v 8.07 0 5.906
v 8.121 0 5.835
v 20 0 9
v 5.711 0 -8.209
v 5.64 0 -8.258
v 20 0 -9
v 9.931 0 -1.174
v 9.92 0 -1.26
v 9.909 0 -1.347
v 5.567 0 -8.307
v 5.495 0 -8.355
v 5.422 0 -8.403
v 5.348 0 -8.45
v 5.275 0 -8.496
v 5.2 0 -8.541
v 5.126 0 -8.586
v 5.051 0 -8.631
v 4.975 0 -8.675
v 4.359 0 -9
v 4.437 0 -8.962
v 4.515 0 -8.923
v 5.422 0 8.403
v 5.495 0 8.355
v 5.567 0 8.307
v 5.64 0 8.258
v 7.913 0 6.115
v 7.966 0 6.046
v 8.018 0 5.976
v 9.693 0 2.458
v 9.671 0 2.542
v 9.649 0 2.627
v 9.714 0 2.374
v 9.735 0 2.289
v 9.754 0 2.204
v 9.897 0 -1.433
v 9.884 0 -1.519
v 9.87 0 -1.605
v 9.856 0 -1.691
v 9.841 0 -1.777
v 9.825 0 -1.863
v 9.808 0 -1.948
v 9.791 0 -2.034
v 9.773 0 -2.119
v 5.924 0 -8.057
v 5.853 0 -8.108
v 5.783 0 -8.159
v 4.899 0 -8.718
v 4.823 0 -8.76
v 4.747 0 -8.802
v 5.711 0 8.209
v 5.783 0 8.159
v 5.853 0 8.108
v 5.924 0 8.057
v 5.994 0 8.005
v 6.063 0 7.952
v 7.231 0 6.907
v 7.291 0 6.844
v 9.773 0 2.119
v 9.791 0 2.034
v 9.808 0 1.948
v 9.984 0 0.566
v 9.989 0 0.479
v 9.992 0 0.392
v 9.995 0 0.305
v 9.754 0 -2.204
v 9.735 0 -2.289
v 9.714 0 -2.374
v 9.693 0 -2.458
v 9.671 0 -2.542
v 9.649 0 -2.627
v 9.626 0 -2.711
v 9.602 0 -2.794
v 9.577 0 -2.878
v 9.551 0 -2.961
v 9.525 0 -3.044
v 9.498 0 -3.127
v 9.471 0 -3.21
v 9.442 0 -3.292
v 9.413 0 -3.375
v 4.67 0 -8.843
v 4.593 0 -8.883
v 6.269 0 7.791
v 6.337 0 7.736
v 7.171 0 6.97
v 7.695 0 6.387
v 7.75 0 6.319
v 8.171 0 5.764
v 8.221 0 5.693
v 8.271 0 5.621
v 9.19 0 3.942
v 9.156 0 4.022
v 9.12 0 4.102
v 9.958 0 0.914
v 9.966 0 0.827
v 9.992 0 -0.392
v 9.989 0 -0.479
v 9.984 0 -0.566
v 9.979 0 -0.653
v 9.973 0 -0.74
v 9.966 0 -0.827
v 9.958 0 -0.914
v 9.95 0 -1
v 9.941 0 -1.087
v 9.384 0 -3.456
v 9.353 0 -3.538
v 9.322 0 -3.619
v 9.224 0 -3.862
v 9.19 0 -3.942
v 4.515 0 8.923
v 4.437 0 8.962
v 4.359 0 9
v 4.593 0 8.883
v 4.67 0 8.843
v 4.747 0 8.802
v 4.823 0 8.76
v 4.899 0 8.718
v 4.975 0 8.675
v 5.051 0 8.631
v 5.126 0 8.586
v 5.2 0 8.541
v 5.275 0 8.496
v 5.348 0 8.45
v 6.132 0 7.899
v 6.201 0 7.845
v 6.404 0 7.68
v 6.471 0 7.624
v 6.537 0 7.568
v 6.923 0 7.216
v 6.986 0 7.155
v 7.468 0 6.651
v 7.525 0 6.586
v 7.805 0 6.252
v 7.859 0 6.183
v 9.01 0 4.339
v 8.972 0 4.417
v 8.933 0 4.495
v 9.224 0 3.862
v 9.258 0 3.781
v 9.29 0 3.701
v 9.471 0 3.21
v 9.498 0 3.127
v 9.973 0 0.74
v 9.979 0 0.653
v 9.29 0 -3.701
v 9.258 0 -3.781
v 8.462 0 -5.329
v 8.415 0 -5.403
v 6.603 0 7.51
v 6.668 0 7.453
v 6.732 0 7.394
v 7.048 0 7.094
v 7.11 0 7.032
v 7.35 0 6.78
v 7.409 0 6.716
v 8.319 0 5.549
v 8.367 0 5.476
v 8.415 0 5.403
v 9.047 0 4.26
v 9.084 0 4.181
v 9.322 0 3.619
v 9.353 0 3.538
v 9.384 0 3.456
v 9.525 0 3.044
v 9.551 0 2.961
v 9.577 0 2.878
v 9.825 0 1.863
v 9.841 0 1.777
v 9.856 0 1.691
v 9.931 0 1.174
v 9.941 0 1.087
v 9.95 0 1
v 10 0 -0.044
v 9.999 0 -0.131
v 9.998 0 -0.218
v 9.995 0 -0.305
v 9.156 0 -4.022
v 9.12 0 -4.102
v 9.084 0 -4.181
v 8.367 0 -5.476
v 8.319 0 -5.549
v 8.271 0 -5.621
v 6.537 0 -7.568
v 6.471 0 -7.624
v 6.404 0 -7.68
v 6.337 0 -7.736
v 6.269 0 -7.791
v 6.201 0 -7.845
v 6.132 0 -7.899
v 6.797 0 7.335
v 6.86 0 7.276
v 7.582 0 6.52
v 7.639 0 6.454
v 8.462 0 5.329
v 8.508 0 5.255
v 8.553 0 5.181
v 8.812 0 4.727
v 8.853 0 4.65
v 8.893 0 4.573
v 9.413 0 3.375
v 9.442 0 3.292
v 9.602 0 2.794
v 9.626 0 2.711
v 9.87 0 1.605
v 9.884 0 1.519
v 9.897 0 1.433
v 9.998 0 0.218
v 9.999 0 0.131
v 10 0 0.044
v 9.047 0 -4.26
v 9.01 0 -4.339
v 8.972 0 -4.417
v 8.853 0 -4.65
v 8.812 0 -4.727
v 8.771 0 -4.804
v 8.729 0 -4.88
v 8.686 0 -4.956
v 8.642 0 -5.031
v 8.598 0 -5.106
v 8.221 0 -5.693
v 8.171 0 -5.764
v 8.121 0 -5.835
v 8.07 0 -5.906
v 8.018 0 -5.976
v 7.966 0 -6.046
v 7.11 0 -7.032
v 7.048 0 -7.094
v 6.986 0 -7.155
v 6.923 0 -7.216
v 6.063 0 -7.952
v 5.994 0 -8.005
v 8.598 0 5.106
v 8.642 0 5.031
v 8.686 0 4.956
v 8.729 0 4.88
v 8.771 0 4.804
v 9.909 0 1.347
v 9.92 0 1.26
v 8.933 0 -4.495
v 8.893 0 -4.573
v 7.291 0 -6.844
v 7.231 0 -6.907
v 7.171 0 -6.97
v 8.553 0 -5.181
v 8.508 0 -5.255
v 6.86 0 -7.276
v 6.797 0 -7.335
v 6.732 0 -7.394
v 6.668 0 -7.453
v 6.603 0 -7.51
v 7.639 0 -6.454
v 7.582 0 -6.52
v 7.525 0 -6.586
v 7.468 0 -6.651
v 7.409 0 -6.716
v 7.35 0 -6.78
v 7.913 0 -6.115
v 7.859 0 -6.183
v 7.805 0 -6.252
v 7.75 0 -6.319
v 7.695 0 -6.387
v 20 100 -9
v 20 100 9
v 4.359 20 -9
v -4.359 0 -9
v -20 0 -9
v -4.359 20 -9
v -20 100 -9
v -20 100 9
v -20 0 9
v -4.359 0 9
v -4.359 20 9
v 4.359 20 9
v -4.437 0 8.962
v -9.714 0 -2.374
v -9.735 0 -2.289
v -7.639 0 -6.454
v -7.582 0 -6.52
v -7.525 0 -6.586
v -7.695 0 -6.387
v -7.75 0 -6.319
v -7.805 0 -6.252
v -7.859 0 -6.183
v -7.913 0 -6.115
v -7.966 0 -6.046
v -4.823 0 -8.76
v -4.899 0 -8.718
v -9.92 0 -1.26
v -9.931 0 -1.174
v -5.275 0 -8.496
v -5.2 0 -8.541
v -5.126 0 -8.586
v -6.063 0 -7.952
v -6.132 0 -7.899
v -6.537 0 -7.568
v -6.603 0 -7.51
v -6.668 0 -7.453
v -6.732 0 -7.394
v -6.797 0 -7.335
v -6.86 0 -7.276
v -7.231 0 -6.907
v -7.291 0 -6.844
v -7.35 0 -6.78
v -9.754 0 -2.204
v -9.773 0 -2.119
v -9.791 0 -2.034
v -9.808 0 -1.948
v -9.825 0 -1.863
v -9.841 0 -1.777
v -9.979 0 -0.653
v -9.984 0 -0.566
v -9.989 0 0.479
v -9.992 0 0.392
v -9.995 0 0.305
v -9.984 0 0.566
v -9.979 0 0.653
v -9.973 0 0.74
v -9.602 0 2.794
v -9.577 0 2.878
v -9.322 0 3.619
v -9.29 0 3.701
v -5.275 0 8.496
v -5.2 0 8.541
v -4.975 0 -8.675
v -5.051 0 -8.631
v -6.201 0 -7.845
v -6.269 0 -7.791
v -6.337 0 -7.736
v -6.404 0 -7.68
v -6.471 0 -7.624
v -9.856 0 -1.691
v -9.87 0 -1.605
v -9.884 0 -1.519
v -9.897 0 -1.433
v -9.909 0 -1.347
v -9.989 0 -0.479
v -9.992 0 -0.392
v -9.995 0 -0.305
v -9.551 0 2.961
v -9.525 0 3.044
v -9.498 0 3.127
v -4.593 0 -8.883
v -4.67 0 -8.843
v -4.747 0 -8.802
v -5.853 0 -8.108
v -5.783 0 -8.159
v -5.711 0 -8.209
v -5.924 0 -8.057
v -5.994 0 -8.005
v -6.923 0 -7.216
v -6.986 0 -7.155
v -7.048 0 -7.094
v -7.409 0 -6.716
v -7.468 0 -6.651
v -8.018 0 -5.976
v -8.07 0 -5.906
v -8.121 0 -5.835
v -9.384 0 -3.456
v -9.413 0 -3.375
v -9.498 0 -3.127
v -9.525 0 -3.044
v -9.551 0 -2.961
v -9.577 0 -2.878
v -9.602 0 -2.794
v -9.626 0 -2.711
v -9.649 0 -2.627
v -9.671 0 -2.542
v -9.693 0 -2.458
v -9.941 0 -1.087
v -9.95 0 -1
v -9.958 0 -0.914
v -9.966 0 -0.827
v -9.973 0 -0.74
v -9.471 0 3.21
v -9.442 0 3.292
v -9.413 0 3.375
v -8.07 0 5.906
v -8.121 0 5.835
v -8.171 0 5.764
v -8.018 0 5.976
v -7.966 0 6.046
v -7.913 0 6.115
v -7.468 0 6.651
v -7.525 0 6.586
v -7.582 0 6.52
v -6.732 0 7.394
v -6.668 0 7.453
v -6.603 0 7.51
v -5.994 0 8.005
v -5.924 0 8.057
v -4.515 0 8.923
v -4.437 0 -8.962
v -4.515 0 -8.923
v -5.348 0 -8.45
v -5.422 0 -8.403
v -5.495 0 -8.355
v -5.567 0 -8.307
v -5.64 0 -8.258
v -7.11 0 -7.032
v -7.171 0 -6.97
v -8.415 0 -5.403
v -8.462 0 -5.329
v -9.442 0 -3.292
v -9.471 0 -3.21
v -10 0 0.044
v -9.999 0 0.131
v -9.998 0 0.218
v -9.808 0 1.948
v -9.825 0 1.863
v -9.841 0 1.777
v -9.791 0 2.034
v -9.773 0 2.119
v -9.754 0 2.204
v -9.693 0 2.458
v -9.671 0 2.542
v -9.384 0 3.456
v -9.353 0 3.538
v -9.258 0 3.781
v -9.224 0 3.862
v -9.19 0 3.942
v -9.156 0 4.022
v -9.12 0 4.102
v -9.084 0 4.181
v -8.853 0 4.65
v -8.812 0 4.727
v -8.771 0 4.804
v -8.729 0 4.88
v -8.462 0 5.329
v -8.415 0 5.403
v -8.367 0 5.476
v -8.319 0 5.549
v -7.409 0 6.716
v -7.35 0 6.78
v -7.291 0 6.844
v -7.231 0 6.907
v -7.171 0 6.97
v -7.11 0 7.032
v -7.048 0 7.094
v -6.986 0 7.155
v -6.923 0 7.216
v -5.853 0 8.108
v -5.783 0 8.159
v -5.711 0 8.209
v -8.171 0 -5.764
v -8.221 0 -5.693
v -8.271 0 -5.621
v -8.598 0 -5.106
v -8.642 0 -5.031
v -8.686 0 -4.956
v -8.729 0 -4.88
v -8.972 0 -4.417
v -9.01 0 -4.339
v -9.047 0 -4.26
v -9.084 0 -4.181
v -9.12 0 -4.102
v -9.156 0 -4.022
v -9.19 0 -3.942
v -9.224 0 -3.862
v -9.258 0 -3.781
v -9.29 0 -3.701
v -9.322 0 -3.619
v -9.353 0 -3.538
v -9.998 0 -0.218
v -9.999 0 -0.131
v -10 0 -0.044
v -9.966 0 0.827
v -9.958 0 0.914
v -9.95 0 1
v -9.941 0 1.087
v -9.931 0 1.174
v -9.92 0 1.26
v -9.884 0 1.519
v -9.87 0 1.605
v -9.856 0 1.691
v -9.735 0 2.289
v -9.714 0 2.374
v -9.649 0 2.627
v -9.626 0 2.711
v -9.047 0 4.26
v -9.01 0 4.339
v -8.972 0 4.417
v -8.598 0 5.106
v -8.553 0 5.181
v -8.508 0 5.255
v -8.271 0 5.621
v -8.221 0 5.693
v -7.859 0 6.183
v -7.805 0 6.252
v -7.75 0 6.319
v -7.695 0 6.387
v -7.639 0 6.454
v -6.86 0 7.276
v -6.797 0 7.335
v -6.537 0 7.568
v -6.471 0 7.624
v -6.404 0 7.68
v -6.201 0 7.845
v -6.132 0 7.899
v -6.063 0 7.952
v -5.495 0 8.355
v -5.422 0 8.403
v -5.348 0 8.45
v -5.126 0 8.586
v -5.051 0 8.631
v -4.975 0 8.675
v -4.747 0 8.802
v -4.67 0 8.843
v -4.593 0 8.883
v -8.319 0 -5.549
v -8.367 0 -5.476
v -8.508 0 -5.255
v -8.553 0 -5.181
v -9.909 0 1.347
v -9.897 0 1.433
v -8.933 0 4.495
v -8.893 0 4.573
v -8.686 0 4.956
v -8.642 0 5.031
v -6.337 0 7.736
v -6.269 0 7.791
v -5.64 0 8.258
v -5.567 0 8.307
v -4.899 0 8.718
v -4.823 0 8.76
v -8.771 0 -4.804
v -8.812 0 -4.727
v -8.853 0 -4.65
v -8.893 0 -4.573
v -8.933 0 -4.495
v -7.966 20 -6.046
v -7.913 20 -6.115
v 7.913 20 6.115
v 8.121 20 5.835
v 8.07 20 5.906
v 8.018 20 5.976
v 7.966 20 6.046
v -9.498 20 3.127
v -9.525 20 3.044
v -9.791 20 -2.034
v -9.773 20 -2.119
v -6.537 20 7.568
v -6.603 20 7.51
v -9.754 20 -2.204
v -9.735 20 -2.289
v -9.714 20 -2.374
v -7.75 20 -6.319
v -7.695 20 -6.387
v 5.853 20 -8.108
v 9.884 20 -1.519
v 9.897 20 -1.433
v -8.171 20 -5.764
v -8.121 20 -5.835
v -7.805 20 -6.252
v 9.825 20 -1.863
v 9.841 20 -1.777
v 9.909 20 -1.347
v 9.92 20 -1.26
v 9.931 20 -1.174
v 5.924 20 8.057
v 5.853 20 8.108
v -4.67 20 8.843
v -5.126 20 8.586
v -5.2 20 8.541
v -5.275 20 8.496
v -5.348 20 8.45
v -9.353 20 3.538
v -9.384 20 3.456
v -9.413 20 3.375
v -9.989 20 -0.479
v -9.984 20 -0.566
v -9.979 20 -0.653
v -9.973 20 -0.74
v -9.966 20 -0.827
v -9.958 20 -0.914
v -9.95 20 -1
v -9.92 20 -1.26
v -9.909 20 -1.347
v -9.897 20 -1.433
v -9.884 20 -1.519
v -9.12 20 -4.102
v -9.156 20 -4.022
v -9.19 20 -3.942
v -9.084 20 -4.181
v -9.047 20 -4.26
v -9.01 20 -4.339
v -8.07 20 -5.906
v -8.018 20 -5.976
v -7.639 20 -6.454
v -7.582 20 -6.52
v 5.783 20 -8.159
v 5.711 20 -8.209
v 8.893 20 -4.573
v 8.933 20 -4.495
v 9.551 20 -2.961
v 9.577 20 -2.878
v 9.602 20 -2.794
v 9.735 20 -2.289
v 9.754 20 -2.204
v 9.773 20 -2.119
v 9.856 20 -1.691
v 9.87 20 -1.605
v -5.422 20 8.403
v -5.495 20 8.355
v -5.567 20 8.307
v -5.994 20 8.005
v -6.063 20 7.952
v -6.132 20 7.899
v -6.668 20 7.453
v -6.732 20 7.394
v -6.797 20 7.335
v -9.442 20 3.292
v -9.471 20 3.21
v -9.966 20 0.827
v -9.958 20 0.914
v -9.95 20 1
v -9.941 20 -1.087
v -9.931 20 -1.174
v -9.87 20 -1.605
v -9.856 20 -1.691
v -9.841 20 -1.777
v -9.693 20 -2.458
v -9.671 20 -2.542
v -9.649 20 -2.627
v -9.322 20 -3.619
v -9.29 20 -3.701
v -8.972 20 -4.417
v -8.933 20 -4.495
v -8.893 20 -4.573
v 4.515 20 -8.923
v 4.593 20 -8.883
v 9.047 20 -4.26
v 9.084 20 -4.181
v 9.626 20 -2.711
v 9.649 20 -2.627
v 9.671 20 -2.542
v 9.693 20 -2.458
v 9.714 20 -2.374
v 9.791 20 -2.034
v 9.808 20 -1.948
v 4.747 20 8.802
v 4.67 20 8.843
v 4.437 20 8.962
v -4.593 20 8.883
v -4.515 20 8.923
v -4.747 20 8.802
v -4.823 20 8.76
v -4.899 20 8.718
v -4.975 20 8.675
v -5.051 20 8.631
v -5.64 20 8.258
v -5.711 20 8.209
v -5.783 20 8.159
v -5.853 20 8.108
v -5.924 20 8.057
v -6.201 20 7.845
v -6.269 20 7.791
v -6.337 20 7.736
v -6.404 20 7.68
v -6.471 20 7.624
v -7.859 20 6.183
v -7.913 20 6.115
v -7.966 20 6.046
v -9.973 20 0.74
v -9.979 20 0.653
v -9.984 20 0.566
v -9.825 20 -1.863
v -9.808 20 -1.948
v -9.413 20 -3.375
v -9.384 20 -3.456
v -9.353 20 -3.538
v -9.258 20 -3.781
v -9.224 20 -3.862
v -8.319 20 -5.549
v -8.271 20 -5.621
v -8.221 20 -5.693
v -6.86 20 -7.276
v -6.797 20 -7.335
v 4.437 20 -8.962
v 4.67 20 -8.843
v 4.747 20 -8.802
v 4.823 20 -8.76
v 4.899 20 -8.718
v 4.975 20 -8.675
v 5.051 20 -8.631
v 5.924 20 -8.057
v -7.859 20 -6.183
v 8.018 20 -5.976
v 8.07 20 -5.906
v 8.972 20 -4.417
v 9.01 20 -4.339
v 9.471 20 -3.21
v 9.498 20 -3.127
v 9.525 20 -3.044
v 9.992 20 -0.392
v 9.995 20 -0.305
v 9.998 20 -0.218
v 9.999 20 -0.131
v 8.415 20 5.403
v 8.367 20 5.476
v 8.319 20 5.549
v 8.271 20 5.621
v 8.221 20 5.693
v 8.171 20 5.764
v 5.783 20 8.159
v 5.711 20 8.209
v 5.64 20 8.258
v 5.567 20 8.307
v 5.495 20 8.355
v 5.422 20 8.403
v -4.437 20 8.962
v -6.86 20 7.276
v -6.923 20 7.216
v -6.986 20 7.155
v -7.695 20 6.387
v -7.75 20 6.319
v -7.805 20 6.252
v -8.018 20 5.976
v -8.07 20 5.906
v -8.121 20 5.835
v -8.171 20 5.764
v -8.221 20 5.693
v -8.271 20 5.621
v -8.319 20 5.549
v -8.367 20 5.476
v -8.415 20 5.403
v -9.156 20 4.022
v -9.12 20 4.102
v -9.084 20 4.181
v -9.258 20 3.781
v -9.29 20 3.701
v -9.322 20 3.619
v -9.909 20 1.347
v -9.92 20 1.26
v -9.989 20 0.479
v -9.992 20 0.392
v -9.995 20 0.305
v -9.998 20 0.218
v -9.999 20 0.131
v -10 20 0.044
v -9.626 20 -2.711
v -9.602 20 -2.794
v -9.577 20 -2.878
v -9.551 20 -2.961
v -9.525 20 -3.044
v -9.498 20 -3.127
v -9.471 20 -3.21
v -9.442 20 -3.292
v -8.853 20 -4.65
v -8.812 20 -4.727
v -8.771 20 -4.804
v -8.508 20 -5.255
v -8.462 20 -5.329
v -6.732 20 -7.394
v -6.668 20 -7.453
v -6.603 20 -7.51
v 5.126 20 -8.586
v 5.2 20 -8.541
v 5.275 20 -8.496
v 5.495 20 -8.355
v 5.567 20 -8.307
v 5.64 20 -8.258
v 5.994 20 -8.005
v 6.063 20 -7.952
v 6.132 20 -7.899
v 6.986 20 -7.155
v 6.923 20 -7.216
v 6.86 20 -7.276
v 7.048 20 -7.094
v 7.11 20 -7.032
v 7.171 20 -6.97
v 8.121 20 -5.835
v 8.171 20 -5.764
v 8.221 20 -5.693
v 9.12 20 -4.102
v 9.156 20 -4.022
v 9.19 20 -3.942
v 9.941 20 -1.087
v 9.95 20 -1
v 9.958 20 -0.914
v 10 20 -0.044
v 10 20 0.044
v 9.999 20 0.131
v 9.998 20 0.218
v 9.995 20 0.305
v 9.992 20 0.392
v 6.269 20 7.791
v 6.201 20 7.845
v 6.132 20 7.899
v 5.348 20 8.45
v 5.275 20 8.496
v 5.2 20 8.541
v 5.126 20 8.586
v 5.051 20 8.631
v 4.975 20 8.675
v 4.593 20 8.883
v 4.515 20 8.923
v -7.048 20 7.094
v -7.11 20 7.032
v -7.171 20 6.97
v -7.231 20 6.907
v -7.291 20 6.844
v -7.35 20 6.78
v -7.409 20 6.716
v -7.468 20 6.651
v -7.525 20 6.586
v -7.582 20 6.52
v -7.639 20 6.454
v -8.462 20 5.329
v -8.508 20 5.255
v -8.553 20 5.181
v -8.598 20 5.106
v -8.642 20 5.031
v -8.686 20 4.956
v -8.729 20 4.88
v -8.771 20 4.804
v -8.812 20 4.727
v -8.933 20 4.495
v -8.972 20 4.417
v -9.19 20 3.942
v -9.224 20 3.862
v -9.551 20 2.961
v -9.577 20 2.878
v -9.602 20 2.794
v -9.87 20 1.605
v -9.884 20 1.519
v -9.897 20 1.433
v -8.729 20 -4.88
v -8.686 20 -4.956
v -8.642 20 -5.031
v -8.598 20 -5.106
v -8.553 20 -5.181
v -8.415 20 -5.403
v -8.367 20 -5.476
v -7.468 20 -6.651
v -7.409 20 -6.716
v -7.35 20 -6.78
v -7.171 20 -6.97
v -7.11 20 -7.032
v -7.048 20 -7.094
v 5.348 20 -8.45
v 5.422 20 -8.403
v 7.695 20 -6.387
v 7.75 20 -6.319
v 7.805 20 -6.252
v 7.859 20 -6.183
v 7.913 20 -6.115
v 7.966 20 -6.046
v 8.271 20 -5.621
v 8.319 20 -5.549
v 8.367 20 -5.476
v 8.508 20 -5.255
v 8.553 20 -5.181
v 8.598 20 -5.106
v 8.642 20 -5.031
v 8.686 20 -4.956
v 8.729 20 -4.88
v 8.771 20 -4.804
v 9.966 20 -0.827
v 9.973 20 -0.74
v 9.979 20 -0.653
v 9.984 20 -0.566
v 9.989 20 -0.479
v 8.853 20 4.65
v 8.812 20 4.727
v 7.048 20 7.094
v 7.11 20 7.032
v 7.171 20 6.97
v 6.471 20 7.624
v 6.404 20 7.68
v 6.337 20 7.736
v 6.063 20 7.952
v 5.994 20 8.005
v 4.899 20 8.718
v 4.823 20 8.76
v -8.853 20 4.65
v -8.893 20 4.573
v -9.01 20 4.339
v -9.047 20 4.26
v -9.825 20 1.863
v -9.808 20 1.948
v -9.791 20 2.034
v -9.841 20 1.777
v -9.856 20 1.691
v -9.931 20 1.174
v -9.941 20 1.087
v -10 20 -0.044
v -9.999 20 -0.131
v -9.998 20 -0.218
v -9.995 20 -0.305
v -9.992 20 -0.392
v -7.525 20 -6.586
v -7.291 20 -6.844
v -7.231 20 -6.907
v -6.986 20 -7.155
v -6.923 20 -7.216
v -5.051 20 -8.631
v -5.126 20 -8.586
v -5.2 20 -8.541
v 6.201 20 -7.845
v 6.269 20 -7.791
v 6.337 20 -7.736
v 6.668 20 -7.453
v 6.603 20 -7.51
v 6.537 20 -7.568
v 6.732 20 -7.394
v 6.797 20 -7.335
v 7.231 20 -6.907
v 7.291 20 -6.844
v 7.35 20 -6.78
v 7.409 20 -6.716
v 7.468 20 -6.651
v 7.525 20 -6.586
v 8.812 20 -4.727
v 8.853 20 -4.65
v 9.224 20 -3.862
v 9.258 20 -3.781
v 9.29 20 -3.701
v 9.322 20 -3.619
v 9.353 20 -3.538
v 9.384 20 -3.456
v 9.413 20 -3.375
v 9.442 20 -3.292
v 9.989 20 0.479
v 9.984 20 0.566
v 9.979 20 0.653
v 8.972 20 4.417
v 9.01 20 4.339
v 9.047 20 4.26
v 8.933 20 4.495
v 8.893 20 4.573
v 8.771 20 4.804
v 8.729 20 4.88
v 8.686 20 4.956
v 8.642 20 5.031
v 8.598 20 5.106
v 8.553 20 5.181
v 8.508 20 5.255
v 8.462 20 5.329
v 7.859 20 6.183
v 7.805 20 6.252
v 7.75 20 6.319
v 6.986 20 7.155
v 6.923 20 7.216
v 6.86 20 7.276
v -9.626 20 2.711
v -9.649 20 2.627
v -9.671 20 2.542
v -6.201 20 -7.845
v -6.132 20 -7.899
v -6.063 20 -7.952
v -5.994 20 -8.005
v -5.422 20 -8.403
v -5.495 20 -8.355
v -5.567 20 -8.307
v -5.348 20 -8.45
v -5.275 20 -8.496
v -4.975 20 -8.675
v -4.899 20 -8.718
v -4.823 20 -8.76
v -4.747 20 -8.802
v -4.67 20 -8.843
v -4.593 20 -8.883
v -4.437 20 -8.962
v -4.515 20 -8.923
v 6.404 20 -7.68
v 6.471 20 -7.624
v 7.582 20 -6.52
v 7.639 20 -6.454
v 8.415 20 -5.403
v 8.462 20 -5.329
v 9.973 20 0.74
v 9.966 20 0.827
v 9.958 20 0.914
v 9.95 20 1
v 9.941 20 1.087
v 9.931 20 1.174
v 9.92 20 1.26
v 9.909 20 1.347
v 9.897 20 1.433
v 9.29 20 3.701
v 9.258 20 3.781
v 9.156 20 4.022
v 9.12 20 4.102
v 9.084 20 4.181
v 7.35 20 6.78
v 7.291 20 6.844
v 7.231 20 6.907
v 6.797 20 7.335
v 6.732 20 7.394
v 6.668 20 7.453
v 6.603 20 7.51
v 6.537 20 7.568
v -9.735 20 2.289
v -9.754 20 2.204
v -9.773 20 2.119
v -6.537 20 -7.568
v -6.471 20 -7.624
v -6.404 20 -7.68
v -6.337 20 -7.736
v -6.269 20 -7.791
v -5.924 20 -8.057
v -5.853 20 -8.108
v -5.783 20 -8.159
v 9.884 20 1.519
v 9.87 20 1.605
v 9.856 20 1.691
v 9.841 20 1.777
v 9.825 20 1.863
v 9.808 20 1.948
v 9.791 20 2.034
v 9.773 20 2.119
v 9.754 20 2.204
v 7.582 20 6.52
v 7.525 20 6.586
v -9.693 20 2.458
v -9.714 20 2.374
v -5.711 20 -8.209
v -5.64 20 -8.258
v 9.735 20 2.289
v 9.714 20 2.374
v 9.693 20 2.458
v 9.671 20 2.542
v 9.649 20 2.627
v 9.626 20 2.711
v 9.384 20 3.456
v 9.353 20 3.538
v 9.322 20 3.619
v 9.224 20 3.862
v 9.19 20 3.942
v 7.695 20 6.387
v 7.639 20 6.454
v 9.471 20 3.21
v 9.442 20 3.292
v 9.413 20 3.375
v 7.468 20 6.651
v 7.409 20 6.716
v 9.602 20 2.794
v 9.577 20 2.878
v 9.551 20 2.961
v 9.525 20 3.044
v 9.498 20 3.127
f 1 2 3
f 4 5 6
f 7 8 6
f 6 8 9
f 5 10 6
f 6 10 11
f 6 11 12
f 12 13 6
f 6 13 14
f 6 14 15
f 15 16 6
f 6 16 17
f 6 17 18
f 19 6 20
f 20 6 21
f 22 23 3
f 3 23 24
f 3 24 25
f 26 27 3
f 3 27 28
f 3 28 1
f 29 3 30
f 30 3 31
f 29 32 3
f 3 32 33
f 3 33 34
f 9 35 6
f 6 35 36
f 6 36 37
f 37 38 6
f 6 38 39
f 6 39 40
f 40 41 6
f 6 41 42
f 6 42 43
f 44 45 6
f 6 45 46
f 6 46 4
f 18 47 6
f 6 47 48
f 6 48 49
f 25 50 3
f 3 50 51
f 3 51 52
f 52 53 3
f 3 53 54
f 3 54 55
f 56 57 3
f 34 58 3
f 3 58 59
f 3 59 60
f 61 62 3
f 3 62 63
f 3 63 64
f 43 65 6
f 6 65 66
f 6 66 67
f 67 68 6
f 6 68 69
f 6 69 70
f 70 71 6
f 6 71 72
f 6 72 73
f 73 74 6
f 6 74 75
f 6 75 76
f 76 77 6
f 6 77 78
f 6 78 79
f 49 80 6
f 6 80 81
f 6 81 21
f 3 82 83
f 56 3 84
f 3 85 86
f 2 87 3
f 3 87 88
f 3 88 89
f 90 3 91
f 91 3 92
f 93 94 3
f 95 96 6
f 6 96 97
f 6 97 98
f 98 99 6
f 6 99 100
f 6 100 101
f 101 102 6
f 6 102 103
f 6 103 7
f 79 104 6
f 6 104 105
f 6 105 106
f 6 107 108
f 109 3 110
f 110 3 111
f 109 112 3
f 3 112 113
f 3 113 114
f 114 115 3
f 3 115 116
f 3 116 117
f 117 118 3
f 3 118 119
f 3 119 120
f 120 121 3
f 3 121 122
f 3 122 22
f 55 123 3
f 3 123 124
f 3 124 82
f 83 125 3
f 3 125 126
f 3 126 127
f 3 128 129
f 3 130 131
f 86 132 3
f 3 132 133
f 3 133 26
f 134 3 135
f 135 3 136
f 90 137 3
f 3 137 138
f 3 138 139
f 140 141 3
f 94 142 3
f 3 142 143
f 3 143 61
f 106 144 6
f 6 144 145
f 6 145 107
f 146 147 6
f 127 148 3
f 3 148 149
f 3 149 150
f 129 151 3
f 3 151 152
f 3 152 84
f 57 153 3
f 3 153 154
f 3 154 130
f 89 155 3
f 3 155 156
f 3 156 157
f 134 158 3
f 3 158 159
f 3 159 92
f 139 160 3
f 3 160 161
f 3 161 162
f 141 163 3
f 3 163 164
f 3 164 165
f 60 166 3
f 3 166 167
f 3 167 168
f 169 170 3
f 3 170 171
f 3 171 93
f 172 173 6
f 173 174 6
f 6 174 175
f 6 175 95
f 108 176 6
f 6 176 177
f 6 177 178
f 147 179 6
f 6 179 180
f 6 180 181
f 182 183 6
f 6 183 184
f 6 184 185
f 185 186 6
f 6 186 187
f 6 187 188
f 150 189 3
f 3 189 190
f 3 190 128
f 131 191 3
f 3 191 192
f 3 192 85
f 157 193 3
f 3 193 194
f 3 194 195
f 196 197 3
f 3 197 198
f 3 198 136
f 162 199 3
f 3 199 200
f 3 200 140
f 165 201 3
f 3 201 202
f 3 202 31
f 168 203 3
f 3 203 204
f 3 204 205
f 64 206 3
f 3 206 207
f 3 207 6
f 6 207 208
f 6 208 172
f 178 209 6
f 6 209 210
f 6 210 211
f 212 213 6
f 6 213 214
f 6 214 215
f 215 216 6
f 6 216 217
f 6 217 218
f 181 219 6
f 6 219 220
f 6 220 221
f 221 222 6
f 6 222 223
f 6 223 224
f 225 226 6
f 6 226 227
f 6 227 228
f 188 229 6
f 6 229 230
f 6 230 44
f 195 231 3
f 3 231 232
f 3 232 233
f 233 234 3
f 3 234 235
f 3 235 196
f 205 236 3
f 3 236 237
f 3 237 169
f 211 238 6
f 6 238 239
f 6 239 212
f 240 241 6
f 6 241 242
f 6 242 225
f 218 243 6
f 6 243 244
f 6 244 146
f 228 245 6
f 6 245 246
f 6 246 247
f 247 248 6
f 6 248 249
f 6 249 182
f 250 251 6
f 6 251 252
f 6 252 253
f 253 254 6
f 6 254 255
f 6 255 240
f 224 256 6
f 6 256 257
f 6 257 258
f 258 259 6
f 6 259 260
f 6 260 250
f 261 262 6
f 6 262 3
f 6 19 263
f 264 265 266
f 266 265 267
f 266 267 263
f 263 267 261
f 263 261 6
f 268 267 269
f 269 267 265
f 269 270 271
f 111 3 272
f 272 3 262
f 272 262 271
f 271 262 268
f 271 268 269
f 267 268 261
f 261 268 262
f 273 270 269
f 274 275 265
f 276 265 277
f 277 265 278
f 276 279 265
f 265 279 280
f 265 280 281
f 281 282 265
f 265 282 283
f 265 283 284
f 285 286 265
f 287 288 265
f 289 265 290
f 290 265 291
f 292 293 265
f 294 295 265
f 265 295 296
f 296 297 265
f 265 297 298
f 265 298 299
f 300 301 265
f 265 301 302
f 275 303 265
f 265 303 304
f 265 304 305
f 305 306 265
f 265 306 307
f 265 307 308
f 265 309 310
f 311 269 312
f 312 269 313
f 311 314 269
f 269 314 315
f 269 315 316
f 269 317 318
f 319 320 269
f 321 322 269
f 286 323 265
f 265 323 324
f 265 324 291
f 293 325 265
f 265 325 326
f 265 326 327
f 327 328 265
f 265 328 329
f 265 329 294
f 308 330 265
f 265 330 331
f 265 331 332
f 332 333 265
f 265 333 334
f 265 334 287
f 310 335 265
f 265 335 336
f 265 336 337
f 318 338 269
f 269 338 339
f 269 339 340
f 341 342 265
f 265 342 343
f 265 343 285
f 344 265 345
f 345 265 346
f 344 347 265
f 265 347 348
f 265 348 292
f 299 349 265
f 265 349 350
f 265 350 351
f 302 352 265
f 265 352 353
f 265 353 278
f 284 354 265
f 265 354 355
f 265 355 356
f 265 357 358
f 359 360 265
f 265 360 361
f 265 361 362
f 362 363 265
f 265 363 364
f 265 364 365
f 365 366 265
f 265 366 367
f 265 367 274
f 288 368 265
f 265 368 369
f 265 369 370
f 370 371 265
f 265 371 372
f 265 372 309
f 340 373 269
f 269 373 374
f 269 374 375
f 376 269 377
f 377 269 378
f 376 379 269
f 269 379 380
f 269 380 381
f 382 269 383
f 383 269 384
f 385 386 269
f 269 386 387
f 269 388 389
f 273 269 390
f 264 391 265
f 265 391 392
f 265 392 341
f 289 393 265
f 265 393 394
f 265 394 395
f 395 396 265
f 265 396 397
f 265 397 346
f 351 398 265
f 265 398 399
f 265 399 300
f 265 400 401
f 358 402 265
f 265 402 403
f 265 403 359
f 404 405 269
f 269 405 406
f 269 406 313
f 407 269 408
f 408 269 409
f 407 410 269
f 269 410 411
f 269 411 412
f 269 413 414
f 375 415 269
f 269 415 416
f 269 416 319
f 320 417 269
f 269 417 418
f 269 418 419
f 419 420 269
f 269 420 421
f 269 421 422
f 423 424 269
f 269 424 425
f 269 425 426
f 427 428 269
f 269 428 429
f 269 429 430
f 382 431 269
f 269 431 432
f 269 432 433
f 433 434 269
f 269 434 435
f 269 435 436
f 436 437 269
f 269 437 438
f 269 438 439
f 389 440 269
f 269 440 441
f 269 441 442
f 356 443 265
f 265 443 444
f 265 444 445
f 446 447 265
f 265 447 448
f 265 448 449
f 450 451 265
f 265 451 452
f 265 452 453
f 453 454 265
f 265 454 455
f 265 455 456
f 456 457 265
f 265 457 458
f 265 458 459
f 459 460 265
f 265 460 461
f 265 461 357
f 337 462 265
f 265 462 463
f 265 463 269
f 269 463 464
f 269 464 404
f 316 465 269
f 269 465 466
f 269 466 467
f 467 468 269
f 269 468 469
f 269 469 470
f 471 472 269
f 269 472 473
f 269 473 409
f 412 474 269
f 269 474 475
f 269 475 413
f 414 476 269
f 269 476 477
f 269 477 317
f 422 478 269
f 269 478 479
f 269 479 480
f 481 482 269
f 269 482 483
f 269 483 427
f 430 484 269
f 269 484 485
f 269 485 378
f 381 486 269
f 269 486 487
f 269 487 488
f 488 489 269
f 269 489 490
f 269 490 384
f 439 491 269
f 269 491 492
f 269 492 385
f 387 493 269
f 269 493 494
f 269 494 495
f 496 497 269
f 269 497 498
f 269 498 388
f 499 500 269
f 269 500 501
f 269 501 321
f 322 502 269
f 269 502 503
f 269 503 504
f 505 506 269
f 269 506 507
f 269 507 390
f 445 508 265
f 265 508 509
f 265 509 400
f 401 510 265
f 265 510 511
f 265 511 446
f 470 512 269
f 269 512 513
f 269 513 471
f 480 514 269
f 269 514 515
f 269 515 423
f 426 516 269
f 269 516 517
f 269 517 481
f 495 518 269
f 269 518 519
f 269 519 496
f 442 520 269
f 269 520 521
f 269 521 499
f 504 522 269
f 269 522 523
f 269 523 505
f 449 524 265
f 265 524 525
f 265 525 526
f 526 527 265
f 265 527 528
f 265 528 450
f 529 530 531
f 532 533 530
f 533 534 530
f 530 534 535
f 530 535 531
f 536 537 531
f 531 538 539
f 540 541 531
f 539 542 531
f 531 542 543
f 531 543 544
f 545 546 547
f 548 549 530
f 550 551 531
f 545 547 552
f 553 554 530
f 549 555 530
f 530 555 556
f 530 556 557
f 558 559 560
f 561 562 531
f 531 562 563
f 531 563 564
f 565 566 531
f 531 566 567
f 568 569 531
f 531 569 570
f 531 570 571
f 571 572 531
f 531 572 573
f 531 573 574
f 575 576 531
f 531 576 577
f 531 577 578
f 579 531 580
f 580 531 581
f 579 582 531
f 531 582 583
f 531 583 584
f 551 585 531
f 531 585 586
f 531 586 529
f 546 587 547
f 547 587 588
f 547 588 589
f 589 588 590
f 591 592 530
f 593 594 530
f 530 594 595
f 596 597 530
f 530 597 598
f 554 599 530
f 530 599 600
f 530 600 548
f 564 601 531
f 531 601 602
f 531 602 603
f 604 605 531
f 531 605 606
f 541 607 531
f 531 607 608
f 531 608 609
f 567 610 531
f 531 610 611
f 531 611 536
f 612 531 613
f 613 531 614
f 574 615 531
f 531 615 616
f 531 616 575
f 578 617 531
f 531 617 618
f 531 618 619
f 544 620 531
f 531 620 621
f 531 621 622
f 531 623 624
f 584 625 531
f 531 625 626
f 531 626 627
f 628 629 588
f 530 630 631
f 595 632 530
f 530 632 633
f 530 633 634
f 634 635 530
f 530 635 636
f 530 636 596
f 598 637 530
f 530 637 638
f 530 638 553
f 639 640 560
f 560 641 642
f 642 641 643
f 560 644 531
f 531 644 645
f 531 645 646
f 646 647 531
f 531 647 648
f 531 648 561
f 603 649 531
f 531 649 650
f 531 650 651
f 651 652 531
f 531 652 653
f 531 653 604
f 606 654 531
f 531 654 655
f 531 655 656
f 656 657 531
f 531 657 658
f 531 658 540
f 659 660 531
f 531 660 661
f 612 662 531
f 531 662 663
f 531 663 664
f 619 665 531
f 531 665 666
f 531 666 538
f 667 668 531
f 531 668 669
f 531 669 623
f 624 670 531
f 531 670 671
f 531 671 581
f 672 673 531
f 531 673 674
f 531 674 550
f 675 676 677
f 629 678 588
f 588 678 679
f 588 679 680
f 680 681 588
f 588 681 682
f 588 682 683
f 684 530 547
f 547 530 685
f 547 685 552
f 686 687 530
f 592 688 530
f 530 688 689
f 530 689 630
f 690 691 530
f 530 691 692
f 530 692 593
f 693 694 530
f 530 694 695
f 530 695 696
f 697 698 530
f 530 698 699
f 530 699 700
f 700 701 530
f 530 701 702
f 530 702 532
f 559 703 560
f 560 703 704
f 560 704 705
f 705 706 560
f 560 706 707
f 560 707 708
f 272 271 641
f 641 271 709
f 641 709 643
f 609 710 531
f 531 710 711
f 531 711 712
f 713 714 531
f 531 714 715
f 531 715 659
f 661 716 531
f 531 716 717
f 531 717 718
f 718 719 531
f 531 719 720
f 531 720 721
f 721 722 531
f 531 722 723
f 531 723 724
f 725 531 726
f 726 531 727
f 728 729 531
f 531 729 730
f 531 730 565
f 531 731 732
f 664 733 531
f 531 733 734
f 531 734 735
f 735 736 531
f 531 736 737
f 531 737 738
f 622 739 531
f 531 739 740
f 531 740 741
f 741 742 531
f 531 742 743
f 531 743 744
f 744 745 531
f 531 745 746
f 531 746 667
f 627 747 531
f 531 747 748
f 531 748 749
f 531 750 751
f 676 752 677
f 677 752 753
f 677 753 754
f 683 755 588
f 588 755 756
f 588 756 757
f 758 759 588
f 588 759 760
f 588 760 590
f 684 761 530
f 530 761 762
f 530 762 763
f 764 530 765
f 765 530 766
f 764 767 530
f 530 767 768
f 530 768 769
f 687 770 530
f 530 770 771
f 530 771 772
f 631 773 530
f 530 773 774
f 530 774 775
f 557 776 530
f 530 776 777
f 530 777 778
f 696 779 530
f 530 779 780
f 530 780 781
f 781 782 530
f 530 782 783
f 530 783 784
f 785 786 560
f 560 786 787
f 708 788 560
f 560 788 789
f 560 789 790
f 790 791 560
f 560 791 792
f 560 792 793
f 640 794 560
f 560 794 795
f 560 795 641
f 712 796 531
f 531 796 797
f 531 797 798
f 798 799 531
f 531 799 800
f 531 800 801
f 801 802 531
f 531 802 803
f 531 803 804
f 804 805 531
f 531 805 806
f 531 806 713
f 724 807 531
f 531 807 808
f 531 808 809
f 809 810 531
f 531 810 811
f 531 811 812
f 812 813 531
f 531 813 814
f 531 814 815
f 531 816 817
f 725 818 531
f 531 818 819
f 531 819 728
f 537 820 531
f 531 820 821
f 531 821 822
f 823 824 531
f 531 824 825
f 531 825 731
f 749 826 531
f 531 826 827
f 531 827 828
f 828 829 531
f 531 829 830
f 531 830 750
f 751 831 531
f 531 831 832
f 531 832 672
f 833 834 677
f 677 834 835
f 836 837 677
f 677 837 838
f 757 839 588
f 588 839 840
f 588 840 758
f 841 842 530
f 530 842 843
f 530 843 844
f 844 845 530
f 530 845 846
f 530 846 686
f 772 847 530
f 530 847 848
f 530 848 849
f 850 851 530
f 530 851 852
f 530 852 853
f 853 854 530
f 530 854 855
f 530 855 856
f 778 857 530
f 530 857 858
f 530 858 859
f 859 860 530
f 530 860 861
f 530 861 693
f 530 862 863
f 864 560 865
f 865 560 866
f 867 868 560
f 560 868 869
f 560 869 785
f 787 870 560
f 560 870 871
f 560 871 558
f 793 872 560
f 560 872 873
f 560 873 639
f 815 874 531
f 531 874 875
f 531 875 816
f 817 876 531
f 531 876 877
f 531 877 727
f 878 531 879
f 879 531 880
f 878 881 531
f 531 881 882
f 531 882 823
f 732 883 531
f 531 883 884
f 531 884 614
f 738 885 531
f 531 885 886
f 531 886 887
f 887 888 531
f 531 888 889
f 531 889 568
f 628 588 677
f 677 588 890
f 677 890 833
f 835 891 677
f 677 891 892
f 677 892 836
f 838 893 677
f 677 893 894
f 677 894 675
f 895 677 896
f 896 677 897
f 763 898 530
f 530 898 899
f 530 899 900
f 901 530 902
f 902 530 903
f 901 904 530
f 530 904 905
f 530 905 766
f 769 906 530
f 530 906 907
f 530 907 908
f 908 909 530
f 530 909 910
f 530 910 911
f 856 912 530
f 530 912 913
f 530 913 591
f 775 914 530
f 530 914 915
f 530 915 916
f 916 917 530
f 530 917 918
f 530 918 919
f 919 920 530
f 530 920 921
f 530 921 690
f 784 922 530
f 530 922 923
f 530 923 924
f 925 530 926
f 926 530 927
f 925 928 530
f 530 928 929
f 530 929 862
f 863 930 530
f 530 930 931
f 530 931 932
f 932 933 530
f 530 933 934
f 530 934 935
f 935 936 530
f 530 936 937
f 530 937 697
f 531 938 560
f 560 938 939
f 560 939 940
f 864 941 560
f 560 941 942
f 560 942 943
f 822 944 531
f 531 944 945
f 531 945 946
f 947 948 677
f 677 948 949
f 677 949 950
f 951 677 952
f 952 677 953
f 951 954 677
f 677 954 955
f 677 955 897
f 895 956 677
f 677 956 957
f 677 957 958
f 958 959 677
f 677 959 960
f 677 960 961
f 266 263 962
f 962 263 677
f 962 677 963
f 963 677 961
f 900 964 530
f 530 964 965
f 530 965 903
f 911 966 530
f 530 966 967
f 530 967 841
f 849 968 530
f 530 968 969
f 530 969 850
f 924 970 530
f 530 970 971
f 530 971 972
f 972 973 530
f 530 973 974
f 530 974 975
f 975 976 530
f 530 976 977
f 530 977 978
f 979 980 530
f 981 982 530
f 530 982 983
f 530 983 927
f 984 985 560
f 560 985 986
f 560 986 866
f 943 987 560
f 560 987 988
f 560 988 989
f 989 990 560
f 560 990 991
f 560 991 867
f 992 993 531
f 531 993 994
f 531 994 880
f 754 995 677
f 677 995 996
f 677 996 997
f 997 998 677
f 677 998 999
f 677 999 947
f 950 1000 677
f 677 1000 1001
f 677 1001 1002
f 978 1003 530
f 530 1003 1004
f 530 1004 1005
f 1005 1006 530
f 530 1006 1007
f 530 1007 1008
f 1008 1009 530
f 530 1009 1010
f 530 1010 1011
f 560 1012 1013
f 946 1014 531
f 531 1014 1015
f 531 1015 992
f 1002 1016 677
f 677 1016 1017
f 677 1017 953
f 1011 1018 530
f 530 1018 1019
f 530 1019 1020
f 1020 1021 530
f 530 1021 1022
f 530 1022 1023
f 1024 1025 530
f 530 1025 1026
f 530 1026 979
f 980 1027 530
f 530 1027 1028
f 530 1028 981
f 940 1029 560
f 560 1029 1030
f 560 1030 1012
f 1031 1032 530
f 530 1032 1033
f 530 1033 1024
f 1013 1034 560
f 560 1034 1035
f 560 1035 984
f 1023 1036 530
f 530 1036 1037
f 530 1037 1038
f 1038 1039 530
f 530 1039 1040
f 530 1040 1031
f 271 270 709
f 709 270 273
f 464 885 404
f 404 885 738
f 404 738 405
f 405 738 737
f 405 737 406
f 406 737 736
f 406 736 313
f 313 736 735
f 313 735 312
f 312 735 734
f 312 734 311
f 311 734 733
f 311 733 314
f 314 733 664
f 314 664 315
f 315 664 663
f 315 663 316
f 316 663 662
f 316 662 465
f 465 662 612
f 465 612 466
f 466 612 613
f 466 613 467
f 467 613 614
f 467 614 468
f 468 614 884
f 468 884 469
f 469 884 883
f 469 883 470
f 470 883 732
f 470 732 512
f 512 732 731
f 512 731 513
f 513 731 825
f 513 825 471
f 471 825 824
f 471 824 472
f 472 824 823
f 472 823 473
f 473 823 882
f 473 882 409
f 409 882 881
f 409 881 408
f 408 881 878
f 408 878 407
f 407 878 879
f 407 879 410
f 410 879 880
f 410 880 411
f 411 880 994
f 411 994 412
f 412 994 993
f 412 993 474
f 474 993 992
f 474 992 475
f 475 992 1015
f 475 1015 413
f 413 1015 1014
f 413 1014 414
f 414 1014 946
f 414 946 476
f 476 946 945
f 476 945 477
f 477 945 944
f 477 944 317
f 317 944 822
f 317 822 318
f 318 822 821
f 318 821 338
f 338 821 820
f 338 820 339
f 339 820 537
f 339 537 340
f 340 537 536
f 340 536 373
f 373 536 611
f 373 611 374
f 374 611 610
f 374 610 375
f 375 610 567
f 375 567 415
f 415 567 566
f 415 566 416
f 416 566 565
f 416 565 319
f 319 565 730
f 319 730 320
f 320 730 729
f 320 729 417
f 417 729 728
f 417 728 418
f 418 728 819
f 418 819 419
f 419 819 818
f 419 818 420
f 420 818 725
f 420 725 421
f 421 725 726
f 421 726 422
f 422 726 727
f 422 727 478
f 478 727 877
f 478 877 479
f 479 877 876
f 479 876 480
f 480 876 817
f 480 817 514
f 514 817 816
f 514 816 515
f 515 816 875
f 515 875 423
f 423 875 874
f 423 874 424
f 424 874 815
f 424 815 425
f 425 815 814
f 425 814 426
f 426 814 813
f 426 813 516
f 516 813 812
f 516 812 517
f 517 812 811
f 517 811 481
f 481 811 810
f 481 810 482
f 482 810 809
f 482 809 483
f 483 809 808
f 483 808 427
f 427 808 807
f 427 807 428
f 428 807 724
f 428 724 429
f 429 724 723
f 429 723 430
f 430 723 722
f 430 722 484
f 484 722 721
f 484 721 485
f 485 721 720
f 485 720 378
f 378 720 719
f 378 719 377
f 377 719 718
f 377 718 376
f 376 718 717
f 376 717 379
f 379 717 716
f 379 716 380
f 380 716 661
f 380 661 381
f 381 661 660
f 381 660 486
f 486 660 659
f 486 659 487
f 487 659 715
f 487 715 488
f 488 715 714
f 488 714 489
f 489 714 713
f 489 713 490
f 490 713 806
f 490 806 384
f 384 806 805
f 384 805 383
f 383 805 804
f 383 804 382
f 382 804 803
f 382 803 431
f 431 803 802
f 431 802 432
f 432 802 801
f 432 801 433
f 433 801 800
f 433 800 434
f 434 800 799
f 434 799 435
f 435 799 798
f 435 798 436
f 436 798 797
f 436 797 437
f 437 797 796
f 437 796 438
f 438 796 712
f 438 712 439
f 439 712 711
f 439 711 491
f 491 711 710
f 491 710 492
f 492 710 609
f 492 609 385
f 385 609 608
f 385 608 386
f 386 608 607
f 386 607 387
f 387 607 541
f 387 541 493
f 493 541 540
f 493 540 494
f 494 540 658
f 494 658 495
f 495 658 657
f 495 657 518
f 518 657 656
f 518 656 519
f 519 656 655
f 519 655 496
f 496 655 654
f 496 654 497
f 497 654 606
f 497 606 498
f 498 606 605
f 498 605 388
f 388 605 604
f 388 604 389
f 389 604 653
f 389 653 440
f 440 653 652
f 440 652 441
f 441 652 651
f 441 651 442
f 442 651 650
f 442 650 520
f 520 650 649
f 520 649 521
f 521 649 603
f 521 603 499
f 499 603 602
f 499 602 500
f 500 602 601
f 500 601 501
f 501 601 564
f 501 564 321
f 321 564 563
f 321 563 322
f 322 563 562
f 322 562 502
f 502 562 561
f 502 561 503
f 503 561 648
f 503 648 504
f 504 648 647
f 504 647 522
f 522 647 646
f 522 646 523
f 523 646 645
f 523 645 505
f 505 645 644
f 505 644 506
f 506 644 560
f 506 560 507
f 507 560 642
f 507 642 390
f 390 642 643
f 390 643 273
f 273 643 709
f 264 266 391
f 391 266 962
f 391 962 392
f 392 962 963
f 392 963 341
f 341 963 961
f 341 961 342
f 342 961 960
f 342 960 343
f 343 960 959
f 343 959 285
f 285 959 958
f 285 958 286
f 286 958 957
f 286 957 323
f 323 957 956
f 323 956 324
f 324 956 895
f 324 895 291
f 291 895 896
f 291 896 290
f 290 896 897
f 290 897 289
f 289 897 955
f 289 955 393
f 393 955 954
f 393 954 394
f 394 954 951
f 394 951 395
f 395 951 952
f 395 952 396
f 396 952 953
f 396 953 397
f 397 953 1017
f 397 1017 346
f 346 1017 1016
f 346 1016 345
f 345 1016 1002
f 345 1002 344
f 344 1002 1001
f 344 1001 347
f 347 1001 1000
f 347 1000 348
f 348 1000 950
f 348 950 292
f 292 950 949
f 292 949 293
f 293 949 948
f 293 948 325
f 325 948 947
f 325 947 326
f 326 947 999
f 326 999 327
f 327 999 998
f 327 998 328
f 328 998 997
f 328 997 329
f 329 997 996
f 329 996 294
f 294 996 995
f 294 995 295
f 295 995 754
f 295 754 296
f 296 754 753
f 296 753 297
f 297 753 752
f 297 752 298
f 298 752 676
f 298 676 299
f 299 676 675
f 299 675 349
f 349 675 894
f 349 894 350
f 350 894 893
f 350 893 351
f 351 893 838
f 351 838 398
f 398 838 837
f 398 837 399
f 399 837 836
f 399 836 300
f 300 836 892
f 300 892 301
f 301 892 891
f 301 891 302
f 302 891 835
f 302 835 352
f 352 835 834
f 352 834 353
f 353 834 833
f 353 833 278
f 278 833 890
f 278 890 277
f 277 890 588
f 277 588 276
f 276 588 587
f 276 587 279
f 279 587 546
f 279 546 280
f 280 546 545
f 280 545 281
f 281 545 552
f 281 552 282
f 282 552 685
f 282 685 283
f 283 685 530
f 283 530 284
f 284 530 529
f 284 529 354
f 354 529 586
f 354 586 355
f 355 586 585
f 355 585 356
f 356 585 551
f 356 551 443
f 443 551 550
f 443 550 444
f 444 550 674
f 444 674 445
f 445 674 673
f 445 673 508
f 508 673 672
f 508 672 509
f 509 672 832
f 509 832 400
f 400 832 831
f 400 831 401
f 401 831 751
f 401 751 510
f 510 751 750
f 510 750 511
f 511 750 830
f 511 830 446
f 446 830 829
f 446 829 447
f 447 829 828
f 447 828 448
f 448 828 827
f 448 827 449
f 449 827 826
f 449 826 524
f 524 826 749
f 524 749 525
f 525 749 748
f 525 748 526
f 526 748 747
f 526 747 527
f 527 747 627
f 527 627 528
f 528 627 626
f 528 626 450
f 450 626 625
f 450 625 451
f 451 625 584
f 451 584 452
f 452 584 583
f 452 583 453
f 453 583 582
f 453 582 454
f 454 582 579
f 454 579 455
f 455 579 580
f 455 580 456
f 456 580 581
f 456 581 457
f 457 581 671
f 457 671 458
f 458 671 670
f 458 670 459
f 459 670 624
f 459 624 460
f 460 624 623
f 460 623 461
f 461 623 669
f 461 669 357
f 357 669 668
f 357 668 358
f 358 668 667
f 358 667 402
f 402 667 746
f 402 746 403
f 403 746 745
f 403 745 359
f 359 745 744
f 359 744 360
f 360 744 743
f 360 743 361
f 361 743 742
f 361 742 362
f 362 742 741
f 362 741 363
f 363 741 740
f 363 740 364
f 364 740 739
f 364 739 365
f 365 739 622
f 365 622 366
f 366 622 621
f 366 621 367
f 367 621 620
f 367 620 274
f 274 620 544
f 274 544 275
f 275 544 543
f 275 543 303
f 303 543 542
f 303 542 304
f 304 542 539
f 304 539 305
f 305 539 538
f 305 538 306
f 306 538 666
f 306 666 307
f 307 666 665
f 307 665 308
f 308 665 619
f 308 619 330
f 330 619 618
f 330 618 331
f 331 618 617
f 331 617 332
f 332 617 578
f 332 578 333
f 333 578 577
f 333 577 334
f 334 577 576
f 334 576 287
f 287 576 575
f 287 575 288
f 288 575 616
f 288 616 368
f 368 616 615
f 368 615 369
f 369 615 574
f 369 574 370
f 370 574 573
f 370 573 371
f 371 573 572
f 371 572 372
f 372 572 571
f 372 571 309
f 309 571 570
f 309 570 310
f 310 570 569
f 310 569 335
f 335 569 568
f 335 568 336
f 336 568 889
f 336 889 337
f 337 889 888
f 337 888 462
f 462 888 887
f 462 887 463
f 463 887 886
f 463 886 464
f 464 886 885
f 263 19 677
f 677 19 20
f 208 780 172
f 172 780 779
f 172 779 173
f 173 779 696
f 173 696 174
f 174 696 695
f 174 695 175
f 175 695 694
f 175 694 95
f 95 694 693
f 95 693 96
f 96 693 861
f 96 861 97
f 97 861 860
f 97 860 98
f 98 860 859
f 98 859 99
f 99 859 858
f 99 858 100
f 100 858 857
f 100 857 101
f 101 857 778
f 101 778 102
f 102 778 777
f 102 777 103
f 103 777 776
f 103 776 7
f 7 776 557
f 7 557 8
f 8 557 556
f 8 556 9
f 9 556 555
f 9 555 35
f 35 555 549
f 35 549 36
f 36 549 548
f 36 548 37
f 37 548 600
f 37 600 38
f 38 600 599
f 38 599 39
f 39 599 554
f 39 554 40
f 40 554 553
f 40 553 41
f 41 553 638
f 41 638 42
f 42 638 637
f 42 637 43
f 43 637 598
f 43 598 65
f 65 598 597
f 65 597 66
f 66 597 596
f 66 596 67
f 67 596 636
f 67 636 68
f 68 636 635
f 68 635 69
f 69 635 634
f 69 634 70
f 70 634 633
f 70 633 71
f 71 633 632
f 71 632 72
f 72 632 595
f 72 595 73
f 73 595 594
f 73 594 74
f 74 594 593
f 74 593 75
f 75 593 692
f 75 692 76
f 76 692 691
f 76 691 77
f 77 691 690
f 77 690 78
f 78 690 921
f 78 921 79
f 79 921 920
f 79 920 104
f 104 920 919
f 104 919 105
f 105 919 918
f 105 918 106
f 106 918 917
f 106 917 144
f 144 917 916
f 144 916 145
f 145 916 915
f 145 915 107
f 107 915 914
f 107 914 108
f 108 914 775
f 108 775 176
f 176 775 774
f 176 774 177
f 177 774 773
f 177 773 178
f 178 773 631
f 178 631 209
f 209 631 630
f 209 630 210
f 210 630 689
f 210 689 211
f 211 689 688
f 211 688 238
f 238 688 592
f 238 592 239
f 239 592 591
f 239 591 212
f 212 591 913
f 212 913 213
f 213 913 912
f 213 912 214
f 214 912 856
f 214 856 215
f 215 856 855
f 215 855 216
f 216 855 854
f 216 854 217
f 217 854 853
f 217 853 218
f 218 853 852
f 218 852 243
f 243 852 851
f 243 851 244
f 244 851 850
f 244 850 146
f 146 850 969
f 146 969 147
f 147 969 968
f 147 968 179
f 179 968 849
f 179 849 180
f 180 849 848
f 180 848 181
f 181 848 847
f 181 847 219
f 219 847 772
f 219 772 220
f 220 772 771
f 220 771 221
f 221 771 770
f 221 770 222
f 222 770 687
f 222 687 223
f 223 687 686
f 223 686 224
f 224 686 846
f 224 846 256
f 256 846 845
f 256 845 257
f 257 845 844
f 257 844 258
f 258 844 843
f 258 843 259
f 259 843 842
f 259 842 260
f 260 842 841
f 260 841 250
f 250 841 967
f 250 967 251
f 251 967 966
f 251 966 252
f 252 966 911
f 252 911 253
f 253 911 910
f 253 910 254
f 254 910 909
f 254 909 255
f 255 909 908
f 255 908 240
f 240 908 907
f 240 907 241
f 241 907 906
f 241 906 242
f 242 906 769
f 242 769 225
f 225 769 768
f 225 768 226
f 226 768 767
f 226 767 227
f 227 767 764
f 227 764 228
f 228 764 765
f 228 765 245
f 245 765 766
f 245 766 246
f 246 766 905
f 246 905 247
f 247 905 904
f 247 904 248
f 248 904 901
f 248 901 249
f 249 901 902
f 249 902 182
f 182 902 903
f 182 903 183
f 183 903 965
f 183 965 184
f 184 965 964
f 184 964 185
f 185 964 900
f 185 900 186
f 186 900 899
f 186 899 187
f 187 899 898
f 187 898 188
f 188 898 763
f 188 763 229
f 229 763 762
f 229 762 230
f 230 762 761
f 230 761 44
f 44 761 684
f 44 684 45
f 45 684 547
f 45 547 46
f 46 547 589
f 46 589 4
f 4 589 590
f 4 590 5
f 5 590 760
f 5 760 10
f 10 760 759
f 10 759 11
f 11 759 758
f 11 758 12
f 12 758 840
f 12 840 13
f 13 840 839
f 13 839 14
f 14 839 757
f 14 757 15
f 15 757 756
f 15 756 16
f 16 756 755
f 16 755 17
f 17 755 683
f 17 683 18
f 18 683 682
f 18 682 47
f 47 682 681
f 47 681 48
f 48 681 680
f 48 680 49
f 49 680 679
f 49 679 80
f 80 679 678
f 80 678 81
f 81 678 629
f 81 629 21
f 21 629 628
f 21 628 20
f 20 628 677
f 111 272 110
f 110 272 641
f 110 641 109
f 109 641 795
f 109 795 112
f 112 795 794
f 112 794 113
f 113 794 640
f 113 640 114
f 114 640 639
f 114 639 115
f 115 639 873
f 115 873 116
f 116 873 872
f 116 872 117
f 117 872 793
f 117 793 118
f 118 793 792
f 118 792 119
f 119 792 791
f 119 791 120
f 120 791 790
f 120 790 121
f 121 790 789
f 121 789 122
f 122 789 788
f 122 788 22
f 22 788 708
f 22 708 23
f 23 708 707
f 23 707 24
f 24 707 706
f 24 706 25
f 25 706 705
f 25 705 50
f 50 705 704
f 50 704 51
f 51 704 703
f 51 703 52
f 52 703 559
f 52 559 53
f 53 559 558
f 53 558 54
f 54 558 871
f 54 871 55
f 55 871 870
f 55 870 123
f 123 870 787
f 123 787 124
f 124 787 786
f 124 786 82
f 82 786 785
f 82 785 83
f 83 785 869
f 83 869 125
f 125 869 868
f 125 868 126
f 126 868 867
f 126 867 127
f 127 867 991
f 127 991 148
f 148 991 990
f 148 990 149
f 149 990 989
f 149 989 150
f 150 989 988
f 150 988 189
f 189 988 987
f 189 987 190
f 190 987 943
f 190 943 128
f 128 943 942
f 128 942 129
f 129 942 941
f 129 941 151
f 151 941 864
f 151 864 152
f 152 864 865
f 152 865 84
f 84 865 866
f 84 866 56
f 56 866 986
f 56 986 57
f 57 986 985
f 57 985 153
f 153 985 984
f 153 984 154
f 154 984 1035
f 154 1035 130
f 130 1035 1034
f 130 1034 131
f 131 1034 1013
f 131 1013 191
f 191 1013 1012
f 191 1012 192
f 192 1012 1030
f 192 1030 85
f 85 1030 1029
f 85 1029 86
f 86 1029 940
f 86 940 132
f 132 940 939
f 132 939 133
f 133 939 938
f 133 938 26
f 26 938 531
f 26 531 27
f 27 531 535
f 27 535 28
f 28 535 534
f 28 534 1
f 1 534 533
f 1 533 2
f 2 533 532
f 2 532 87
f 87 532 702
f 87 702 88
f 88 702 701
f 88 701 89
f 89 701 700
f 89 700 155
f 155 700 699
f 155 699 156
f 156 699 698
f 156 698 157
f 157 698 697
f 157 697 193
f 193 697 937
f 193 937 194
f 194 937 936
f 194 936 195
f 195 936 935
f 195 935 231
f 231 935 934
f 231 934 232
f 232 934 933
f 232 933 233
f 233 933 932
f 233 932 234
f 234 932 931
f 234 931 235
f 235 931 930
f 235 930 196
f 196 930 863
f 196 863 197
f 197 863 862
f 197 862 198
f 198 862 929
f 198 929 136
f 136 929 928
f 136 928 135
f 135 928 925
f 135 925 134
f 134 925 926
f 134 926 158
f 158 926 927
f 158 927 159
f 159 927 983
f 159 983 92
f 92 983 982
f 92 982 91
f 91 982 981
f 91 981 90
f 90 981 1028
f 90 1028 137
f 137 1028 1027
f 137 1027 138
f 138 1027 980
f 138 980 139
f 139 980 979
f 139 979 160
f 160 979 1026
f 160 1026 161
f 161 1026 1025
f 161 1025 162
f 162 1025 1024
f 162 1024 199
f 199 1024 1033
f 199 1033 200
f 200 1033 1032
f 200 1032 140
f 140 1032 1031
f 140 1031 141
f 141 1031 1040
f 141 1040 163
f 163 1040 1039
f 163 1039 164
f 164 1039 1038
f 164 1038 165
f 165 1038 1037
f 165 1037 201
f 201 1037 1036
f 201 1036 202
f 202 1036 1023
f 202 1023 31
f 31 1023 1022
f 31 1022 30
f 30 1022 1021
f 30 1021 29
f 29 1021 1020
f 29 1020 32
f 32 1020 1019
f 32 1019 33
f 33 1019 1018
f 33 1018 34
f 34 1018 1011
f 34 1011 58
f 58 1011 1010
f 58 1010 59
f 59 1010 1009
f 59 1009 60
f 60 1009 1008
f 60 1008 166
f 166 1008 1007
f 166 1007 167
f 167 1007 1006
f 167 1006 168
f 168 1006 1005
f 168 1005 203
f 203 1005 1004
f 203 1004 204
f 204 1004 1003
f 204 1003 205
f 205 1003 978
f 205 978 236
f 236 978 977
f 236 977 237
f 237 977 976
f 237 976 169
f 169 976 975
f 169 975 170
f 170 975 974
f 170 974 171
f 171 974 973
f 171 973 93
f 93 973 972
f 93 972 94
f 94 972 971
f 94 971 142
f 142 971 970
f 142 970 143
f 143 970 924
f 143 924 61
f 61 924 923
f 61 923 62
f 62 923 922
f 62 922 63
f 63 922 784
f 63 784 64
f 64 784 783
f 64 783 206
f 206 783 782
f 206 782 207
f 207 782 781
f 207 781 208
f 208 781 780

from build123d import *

# Parameters (mm, degrees)
SKETCH1_W           = 40
SKETCH1_H           = 18
BOSS_EXTRUDE1_DEPTH = 100
SKETCH3_R           = 10
SKETCH3_R_2         = 5
CUT_EXTRUDE2_DEPTH  = 20


with BuildPart() as part:
    # Sketch1 → Boss-Extrude1 (new body)
    with BuildSketch(Plane(origin=(0, 0, 0), x_dir=(1, 0, 0), z_dir=(0, 1, 0))):
        Rectangle(SKETCH1_W, SKETCH1_H)
    extrude(amount=BOSS_EXTRUDE1_DEPTH)

    # Sketch3 → Cut-Extrude2 (cut)
    with BuildSketch(Plane.XZ):
        Circle(SKETCH3_R)
        with Locations((0, 22)):
            Circle(SKETCH3_R_2)
        with Locations((0, -22)):
            Circle(SKETCH3_R_2)
    extrude(amount=-CUT_EXTRUDE2_DEPTH, mode=Mode.SUBTRACT)


solid = part.part
